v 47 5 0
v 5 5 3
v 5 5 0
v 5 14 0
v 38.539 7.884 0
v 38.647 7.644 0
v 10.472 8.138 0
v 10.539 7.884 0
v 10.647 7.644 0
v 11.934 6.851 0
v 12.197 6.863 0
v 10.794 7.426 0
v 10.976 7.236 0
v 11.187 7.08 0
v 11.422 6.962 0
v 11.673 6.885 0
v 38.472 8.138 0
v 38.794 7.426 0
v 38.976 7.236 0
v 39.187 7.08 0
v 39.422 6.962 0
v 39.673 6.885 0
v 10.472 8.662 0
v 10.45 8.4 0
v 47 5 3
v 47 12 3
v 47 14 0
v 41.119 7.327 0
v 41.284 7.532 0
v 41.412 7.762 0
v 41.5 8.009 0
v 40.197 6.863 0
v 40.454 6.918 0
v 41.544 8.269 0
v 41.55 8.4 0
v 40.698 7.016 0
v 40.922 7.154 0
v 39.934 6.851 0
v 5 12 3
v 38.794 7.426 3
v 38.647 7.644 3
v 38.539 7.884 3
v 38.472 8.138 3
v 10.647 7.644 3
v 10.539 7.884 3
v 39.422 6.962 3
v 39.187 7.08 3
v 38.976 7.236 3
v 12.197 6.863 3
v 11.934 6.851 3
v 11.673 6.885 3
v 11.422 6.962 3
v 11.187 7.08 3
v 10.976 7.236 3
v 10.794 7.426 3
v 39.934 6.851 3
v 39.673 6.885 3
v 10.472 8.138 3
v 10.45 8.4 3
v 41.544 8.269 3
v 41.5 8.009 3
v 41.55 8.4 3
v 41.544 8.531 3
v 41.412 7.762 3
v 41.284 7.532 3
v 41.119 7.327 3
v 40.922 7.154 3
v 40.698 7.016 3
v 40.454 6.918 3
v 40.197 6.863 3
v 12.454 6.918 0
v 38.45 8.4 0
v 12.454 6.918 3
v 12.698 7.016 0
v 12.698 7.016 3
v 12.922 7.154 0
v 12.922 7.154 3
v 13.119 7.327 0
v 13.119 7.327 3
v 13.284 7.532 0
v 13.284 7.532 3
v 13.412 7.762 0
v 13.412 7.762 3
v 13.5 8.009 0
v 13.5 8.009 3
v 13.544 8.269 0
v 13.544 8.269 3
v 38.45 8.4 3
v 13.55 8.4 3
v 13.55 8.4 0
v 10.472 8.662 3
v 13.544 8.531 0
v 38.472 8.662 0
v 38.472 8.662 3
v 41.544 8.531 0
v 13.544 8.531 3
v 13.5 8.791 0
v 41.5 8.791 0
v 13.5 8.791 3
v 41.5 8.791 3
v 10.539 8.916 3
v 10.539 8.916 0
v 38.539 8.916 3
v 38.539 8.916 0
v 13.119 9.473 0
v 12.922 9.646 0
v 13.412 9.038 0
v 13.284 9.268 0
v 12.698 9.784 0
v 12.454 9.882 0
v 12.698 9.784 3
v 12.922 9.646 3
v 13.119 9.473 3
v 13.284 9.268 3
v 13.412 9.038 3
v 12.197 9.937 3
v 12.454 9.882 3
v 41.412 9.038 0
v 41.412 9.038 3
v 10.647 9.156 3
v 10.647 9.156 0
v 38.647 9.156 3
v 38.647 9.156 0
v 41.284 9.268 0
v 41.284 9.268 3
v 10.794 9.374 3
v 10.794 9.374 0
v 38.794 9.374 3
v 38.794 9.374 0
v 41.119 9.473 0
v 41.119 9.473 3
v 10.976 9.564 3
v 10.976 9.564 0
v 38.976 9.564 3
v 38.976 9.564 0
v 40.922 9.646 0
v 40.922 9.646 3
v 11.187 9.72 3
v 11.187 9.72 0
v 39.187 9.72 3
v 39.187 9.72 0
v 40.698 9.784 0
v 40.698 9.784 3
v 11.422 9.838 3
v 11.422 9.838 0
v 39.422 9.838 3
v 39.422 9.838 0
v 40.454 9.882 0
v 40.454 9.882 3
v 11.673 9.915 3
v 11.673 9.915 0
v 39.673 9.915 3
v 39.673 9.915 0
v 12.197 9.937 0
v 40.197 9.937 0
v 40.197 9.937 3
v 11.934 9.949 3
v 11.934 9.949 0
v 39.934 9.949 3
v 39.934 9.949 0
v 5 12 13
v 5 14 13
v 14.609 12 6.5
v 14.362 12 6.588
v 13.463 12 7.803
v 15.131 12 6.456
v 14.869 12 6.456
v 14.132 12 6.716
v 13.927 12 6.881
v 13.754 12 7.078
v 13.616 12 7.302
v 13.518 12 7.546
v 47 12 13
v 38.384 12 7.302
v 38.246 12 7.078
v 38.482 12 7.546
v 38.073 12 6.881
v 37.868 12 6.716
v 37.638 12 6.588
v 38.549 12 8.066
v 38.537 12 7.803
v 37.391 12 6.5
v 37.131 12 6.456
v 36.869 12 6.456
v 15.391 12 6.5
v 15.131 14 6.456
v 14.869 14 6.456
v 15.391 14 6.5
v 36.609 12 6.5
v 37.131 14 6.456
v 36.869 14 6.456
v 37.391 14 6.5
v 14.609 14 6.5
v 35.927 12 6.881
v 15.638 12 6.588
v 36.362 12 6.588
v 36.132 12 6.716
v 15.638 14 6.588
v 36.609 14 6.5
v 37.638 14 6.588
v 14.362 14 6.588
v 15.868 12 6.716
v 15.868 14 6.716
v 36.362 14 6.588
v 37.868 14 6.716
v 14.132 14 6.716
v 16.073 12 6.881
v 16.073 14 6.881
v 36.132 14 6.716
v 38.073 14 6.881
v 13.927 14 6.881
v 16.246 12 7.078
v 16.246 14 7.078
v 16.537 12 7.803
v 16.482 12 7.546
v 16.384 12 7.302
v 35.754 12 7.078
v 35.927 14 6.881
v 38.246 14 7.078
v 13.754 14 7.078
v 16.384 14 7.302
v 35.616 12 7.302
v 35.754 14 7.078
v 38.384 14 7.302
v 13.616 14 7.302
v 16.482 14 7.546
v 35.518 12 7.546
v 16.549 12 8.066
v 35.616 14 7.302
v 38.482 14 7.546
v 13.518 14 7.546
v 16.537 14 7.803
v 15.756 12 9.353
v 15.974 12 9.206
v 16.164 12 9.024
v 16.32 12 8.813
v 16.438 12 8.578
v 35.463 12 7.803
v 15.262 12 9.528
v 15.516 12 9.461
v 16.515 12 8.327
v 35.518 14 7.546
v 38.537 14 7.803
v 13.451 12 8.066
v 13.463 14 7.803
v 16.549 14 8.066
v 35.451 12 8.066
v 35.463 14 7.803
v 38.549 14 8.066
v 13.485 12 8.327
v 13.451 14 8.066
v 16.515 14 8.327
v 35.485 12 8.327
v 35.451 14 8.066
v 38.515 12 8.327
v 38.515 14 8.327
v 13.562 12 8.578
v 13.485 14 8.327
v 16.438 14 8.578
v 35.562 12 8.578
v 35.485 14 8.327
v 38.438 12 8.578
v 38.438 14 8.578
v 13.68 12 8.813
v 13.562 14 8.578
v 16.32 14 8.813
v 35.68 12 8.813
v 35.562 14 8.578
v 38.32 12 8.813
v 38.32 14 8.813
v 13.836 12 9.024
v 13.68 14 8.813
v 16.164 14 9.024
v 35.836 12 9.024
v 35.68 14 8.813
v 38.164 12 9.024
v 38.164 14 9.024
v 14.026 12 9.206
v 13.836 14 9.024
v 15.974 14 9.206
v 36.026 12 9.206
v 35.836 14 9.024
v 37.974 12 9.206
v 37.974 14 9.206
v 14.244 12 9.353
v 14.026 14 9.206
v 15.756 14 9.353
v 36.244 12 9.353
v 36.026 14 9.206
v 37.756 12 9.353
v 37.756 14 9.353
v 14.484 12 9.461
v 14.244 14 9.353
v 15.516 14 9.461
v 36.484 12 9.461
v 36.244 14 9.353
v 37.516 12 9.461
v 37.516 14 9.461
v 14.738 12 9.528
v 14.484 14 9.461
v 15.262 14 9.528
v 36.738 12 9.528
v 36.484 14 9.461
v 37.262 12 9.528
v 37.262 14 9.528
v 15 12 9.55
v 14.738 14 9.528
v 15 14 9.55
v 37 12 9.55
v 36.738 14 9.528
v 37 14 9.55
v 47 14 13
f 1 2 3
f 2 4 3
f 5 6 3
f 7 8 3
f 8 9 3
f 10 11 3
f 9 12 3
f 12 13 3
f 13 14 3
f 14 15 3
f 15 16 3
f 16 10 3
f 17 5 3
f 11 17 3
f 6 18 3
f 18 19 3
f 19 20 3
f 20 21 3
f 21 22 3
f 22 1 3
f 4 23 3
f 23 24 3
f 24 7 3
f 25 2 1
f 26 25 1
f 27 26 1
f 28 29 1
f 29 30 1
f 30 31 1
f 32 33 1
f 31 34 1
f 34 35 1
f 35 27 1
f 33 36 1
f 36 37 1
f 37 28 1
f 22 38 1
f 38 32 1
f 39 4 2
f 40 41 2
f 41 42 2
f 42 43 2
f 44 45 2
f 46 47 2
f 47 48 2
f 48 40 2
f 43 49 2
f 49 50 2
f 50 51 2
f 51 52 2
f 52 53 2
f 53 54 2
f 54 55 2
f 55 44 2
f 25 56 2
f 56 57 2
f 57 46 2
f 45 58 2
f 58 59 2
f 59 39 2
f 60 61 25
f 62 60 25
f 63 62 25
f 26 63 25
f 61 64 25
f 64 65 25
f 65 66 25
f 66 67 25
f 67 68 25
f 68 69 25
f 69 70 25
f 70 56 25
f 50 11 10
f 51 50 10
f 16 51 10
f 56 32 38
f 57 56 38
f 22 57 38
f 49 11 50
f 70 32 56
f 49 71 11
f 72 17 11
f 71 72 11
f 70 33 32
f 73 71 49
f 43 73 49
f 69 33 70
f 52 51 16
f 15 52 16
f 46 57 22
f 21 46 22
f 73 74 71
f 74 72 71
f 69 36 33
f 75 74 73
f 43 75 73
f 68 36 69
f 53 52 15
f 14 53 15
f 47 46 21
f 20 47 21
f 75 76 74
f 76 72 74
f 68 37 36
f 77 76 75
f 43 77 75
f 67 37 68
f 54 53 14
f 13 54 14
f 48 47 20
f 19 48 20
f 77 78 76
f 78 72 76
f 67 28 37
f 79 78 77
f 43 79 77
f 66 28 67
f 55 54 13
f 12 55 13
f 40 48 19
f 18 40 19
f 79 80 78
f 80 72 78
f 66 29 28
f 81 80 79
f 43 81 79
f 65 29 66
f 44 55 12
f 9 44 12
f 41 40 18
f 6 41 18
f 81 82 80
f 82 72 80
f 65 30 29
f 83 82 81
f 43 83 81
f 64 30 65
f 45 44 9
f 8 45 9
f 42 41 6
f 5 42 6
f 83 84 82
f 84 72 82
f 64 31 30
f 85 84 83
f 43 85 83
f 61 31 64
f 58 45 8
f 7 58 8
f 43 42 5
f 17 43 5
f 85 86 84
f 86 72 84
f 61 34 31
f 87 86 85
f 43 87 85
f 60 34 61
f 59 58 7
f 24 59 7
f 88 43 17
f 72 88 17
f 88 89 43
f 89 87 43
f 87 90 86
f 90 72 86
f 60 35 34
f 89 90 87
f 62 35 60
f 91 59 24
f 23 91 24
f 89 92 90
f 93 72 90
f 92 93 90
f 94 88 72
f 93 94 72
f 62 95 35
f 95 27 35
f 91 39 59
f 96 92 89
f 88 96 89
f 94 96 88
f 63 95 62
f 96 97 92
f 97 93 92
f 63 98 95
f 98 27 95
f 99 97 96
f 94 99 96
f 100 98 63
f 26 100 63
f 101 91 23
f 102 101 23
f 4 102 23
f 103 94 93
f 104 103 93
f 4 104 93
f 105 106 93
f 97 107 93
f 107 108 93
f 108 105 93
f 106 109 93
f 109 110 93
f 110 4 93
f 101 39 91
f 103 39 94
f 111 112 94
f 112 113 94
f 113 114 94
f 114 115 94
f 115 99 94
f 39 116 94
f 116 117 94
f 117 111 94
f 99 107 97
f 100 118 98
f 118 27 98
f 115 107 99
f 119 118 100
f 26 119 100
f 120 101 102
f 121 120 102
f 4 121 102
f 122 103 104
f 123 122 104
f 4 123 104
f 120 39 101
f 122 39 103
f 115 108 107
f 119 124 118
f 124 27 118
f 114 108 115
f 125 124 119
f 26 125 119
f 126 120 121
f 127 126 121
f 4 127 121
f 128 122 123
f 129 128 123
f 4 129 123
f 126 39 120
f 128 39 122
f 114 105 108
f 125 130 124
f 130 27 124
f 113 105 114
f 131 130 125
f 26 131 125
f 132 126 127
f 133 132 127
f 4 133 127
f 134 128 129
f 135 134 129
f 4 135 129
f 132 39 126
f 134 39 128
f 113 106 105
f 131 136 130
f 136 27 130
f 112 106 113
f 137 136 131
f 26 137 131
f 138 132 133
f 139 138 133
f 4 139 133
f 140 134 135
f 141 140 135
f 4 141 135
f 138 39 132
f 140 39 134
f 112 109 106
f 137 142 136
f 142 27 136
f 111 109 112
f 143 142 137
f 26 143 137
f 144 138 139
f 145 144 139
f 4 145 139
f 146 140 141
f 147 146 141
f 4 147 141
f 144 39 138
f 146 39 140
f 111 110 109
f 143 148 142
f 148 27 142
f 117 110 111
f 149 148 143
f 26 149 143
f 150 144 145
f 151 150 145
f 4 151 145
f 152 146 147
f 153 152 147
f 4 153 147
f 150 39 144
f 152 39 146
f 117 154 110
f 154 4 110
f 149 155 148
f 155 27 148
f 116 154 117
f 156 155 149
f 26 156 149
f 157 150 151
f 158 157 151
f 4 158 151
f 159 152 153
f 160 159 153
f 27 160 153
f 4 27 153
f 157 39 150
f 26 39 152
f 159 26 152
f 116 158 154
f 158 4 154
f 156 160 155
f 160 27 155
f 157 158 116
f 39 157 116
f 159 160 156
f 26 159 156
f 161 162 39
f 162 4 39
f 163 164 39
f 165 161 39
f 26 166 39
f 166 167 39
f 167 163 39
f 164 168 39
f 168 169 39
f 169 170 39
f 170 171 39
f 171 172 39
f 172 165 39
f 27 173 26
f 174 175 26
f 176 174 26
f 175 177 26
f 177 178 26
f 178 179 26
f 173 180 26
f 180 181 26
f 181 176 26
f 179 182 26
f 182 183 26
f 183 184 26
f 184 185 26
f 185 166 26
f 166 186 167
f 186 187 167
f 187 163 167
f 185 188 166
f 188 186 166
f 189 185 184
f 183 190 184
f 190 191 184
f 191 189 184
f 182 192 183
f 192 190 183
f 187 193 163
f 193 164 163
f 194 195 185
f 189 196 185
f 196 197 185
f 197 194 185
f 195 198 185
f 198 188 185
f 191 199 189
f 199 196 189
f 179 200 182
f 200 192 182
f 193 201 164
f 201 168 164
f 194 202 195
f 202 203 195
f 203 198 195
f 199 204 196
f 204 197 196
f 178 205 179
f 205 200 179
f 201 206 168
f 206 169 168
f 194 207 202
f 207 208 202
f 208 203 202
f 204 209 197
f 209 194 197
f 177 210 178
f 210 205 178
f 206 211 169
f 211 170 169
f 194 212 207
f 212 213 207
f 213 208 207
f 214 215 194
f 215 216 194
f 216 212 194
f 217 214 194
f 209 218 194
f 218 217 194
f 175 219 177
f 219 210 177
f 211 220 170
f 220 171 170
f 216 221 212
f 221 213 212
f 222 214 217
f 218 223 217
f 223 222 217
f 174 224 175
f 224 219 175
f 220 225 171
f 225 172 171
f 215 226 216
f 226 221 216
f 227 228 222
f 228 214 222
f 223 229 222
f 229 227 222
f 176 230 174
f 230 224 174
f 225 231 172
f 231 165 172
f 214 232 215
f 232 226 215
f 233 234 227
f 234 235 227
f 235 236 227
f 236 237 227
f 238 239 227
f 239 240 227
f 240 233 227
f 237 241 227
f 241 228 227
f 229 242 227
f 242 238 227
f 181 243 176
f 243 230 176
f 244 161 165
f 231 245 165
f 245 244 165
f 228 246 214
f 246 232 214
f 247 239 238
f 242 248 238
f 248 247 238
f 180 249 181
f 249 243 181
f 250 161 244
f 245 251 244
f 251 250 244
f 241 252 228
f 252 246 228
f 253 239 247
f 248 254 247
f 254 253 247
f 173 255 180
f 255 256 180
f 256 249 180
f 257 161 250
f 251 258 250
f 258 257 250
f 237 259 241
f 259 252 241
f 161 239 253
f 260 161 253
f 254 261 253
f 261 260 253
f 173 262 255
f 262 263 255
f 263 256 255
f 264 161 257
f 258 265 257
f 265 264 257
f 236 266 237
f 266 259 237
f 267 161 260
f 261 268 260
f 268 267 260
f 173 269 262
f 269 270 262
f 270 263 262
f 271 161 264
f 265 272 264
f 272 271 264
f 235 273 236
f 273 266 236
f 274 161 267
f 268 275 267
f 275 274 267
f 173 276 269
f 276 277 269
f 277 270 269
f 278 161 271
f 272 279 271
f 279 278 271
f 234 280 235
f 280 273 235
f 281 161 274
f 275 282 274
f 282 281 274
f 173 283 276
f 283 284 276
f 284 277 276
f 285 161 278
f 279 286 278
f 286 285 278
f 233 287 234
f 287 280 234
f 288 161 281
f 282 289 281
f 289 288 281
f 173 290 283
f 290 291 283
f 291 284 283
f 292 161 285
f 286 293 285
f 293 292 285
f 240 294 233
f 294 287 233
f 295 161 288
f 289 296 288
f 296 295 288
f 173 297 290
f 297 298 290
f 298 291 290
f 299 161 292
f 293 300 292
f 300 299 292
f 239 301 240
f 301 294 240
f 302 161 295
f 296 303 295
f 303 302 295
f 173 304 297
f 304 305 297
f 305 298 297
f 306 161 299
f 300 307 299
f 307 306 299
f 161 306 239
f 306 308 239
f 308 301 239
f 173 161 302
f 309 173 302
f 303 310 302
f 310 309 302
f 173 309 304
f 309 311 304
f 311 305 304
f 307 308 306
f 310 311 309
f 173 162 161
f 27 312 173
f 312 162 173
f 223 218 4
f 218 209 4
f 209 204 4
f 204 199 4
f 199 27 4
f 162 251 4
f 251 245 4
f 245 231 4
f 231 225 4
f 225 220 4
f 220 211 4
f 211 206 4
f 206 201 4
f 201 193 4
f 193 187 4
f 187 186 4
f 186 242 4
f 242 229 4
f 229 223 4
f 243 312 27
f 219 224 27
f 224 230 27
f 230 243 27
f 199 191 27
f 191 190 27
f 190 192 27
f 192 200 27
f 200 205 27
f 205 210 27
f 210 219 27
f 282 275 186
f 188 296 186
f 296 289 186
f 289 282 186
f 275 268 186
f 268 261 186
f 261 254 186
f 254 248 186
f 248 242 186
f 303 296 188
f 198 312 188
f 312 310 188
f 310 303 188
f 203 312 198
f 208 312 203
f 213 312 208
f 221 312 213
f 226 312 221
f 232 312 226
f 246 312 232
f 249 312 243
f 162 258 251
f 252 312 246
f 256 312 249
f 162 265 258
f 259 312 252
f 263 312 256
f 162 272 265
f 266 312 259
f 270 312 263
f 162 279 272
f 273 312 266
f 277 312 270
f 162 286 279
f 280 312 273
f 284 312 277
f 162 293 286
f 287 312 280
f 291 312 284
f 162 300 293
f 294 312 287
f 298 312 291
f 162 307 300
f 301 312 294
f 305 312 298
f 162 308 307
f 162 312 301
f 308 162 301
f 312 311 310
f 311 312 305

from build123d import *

# Parameters (mm, degrees)
SKETCH_1_W          = 42
SKETCH_1_H          = 7
SKETCH_1_R          = 1.55
EXTRUDE_5_DEPTH     = 3
SKETCH_1_6_W        = 42
SKETCH_1_6_H        = 2
EXTRUDE_6_DEPTH     = 13
SKETCH_4_R          = 1.55
CUT_EXTRUDE_1_DEPTH = 13


with BuildPart() as part:
    # 草图1 → 凸台-拉伸5 (new body)
    with BuildSketch(Plane.XY):
        with Locations((26, 8.5)):
            Rectangle(SKETCH_1_W, SKETCH_1_H)
        with Locations((12, 8.4)):
            Circle(SKETCH_1_R, mode=Mode.SUBTRACT)
        with Locations((40, 8.4)):
            Circle(SKETCH_1_R, mode=Mode.SUBTRACT)
    extrude(amount=EXTRUDE_5_DEPTH)

    # 草图1<6> → 凸台-拉伸6 (add)
    with BuildSketch(Plane.XY):
        with Locations((26, 13)):
            Rectangle(SKETCH_1_6_W, SKETCH_1_6_H)
    extrude(amount=EXTRUDE_6_DEPTH)

    # 草图4 → 切除-拉伸1 (cut)
    with BuildSketch(Plane(origin=(0, 14, 0), x_dir=(1, 0, 0), z_dir=(0, 1, 0))):
        with Locations((15, -8)):
            Circle(SKETCH_4_R)
        with Locations((37, -8)):
            Circle(SKETCH_4_R)
    extrude(amount=-CUT_EXTRUDE_1_DEPTH, mode=Mode.SUBTRACT)


solid = part.part
